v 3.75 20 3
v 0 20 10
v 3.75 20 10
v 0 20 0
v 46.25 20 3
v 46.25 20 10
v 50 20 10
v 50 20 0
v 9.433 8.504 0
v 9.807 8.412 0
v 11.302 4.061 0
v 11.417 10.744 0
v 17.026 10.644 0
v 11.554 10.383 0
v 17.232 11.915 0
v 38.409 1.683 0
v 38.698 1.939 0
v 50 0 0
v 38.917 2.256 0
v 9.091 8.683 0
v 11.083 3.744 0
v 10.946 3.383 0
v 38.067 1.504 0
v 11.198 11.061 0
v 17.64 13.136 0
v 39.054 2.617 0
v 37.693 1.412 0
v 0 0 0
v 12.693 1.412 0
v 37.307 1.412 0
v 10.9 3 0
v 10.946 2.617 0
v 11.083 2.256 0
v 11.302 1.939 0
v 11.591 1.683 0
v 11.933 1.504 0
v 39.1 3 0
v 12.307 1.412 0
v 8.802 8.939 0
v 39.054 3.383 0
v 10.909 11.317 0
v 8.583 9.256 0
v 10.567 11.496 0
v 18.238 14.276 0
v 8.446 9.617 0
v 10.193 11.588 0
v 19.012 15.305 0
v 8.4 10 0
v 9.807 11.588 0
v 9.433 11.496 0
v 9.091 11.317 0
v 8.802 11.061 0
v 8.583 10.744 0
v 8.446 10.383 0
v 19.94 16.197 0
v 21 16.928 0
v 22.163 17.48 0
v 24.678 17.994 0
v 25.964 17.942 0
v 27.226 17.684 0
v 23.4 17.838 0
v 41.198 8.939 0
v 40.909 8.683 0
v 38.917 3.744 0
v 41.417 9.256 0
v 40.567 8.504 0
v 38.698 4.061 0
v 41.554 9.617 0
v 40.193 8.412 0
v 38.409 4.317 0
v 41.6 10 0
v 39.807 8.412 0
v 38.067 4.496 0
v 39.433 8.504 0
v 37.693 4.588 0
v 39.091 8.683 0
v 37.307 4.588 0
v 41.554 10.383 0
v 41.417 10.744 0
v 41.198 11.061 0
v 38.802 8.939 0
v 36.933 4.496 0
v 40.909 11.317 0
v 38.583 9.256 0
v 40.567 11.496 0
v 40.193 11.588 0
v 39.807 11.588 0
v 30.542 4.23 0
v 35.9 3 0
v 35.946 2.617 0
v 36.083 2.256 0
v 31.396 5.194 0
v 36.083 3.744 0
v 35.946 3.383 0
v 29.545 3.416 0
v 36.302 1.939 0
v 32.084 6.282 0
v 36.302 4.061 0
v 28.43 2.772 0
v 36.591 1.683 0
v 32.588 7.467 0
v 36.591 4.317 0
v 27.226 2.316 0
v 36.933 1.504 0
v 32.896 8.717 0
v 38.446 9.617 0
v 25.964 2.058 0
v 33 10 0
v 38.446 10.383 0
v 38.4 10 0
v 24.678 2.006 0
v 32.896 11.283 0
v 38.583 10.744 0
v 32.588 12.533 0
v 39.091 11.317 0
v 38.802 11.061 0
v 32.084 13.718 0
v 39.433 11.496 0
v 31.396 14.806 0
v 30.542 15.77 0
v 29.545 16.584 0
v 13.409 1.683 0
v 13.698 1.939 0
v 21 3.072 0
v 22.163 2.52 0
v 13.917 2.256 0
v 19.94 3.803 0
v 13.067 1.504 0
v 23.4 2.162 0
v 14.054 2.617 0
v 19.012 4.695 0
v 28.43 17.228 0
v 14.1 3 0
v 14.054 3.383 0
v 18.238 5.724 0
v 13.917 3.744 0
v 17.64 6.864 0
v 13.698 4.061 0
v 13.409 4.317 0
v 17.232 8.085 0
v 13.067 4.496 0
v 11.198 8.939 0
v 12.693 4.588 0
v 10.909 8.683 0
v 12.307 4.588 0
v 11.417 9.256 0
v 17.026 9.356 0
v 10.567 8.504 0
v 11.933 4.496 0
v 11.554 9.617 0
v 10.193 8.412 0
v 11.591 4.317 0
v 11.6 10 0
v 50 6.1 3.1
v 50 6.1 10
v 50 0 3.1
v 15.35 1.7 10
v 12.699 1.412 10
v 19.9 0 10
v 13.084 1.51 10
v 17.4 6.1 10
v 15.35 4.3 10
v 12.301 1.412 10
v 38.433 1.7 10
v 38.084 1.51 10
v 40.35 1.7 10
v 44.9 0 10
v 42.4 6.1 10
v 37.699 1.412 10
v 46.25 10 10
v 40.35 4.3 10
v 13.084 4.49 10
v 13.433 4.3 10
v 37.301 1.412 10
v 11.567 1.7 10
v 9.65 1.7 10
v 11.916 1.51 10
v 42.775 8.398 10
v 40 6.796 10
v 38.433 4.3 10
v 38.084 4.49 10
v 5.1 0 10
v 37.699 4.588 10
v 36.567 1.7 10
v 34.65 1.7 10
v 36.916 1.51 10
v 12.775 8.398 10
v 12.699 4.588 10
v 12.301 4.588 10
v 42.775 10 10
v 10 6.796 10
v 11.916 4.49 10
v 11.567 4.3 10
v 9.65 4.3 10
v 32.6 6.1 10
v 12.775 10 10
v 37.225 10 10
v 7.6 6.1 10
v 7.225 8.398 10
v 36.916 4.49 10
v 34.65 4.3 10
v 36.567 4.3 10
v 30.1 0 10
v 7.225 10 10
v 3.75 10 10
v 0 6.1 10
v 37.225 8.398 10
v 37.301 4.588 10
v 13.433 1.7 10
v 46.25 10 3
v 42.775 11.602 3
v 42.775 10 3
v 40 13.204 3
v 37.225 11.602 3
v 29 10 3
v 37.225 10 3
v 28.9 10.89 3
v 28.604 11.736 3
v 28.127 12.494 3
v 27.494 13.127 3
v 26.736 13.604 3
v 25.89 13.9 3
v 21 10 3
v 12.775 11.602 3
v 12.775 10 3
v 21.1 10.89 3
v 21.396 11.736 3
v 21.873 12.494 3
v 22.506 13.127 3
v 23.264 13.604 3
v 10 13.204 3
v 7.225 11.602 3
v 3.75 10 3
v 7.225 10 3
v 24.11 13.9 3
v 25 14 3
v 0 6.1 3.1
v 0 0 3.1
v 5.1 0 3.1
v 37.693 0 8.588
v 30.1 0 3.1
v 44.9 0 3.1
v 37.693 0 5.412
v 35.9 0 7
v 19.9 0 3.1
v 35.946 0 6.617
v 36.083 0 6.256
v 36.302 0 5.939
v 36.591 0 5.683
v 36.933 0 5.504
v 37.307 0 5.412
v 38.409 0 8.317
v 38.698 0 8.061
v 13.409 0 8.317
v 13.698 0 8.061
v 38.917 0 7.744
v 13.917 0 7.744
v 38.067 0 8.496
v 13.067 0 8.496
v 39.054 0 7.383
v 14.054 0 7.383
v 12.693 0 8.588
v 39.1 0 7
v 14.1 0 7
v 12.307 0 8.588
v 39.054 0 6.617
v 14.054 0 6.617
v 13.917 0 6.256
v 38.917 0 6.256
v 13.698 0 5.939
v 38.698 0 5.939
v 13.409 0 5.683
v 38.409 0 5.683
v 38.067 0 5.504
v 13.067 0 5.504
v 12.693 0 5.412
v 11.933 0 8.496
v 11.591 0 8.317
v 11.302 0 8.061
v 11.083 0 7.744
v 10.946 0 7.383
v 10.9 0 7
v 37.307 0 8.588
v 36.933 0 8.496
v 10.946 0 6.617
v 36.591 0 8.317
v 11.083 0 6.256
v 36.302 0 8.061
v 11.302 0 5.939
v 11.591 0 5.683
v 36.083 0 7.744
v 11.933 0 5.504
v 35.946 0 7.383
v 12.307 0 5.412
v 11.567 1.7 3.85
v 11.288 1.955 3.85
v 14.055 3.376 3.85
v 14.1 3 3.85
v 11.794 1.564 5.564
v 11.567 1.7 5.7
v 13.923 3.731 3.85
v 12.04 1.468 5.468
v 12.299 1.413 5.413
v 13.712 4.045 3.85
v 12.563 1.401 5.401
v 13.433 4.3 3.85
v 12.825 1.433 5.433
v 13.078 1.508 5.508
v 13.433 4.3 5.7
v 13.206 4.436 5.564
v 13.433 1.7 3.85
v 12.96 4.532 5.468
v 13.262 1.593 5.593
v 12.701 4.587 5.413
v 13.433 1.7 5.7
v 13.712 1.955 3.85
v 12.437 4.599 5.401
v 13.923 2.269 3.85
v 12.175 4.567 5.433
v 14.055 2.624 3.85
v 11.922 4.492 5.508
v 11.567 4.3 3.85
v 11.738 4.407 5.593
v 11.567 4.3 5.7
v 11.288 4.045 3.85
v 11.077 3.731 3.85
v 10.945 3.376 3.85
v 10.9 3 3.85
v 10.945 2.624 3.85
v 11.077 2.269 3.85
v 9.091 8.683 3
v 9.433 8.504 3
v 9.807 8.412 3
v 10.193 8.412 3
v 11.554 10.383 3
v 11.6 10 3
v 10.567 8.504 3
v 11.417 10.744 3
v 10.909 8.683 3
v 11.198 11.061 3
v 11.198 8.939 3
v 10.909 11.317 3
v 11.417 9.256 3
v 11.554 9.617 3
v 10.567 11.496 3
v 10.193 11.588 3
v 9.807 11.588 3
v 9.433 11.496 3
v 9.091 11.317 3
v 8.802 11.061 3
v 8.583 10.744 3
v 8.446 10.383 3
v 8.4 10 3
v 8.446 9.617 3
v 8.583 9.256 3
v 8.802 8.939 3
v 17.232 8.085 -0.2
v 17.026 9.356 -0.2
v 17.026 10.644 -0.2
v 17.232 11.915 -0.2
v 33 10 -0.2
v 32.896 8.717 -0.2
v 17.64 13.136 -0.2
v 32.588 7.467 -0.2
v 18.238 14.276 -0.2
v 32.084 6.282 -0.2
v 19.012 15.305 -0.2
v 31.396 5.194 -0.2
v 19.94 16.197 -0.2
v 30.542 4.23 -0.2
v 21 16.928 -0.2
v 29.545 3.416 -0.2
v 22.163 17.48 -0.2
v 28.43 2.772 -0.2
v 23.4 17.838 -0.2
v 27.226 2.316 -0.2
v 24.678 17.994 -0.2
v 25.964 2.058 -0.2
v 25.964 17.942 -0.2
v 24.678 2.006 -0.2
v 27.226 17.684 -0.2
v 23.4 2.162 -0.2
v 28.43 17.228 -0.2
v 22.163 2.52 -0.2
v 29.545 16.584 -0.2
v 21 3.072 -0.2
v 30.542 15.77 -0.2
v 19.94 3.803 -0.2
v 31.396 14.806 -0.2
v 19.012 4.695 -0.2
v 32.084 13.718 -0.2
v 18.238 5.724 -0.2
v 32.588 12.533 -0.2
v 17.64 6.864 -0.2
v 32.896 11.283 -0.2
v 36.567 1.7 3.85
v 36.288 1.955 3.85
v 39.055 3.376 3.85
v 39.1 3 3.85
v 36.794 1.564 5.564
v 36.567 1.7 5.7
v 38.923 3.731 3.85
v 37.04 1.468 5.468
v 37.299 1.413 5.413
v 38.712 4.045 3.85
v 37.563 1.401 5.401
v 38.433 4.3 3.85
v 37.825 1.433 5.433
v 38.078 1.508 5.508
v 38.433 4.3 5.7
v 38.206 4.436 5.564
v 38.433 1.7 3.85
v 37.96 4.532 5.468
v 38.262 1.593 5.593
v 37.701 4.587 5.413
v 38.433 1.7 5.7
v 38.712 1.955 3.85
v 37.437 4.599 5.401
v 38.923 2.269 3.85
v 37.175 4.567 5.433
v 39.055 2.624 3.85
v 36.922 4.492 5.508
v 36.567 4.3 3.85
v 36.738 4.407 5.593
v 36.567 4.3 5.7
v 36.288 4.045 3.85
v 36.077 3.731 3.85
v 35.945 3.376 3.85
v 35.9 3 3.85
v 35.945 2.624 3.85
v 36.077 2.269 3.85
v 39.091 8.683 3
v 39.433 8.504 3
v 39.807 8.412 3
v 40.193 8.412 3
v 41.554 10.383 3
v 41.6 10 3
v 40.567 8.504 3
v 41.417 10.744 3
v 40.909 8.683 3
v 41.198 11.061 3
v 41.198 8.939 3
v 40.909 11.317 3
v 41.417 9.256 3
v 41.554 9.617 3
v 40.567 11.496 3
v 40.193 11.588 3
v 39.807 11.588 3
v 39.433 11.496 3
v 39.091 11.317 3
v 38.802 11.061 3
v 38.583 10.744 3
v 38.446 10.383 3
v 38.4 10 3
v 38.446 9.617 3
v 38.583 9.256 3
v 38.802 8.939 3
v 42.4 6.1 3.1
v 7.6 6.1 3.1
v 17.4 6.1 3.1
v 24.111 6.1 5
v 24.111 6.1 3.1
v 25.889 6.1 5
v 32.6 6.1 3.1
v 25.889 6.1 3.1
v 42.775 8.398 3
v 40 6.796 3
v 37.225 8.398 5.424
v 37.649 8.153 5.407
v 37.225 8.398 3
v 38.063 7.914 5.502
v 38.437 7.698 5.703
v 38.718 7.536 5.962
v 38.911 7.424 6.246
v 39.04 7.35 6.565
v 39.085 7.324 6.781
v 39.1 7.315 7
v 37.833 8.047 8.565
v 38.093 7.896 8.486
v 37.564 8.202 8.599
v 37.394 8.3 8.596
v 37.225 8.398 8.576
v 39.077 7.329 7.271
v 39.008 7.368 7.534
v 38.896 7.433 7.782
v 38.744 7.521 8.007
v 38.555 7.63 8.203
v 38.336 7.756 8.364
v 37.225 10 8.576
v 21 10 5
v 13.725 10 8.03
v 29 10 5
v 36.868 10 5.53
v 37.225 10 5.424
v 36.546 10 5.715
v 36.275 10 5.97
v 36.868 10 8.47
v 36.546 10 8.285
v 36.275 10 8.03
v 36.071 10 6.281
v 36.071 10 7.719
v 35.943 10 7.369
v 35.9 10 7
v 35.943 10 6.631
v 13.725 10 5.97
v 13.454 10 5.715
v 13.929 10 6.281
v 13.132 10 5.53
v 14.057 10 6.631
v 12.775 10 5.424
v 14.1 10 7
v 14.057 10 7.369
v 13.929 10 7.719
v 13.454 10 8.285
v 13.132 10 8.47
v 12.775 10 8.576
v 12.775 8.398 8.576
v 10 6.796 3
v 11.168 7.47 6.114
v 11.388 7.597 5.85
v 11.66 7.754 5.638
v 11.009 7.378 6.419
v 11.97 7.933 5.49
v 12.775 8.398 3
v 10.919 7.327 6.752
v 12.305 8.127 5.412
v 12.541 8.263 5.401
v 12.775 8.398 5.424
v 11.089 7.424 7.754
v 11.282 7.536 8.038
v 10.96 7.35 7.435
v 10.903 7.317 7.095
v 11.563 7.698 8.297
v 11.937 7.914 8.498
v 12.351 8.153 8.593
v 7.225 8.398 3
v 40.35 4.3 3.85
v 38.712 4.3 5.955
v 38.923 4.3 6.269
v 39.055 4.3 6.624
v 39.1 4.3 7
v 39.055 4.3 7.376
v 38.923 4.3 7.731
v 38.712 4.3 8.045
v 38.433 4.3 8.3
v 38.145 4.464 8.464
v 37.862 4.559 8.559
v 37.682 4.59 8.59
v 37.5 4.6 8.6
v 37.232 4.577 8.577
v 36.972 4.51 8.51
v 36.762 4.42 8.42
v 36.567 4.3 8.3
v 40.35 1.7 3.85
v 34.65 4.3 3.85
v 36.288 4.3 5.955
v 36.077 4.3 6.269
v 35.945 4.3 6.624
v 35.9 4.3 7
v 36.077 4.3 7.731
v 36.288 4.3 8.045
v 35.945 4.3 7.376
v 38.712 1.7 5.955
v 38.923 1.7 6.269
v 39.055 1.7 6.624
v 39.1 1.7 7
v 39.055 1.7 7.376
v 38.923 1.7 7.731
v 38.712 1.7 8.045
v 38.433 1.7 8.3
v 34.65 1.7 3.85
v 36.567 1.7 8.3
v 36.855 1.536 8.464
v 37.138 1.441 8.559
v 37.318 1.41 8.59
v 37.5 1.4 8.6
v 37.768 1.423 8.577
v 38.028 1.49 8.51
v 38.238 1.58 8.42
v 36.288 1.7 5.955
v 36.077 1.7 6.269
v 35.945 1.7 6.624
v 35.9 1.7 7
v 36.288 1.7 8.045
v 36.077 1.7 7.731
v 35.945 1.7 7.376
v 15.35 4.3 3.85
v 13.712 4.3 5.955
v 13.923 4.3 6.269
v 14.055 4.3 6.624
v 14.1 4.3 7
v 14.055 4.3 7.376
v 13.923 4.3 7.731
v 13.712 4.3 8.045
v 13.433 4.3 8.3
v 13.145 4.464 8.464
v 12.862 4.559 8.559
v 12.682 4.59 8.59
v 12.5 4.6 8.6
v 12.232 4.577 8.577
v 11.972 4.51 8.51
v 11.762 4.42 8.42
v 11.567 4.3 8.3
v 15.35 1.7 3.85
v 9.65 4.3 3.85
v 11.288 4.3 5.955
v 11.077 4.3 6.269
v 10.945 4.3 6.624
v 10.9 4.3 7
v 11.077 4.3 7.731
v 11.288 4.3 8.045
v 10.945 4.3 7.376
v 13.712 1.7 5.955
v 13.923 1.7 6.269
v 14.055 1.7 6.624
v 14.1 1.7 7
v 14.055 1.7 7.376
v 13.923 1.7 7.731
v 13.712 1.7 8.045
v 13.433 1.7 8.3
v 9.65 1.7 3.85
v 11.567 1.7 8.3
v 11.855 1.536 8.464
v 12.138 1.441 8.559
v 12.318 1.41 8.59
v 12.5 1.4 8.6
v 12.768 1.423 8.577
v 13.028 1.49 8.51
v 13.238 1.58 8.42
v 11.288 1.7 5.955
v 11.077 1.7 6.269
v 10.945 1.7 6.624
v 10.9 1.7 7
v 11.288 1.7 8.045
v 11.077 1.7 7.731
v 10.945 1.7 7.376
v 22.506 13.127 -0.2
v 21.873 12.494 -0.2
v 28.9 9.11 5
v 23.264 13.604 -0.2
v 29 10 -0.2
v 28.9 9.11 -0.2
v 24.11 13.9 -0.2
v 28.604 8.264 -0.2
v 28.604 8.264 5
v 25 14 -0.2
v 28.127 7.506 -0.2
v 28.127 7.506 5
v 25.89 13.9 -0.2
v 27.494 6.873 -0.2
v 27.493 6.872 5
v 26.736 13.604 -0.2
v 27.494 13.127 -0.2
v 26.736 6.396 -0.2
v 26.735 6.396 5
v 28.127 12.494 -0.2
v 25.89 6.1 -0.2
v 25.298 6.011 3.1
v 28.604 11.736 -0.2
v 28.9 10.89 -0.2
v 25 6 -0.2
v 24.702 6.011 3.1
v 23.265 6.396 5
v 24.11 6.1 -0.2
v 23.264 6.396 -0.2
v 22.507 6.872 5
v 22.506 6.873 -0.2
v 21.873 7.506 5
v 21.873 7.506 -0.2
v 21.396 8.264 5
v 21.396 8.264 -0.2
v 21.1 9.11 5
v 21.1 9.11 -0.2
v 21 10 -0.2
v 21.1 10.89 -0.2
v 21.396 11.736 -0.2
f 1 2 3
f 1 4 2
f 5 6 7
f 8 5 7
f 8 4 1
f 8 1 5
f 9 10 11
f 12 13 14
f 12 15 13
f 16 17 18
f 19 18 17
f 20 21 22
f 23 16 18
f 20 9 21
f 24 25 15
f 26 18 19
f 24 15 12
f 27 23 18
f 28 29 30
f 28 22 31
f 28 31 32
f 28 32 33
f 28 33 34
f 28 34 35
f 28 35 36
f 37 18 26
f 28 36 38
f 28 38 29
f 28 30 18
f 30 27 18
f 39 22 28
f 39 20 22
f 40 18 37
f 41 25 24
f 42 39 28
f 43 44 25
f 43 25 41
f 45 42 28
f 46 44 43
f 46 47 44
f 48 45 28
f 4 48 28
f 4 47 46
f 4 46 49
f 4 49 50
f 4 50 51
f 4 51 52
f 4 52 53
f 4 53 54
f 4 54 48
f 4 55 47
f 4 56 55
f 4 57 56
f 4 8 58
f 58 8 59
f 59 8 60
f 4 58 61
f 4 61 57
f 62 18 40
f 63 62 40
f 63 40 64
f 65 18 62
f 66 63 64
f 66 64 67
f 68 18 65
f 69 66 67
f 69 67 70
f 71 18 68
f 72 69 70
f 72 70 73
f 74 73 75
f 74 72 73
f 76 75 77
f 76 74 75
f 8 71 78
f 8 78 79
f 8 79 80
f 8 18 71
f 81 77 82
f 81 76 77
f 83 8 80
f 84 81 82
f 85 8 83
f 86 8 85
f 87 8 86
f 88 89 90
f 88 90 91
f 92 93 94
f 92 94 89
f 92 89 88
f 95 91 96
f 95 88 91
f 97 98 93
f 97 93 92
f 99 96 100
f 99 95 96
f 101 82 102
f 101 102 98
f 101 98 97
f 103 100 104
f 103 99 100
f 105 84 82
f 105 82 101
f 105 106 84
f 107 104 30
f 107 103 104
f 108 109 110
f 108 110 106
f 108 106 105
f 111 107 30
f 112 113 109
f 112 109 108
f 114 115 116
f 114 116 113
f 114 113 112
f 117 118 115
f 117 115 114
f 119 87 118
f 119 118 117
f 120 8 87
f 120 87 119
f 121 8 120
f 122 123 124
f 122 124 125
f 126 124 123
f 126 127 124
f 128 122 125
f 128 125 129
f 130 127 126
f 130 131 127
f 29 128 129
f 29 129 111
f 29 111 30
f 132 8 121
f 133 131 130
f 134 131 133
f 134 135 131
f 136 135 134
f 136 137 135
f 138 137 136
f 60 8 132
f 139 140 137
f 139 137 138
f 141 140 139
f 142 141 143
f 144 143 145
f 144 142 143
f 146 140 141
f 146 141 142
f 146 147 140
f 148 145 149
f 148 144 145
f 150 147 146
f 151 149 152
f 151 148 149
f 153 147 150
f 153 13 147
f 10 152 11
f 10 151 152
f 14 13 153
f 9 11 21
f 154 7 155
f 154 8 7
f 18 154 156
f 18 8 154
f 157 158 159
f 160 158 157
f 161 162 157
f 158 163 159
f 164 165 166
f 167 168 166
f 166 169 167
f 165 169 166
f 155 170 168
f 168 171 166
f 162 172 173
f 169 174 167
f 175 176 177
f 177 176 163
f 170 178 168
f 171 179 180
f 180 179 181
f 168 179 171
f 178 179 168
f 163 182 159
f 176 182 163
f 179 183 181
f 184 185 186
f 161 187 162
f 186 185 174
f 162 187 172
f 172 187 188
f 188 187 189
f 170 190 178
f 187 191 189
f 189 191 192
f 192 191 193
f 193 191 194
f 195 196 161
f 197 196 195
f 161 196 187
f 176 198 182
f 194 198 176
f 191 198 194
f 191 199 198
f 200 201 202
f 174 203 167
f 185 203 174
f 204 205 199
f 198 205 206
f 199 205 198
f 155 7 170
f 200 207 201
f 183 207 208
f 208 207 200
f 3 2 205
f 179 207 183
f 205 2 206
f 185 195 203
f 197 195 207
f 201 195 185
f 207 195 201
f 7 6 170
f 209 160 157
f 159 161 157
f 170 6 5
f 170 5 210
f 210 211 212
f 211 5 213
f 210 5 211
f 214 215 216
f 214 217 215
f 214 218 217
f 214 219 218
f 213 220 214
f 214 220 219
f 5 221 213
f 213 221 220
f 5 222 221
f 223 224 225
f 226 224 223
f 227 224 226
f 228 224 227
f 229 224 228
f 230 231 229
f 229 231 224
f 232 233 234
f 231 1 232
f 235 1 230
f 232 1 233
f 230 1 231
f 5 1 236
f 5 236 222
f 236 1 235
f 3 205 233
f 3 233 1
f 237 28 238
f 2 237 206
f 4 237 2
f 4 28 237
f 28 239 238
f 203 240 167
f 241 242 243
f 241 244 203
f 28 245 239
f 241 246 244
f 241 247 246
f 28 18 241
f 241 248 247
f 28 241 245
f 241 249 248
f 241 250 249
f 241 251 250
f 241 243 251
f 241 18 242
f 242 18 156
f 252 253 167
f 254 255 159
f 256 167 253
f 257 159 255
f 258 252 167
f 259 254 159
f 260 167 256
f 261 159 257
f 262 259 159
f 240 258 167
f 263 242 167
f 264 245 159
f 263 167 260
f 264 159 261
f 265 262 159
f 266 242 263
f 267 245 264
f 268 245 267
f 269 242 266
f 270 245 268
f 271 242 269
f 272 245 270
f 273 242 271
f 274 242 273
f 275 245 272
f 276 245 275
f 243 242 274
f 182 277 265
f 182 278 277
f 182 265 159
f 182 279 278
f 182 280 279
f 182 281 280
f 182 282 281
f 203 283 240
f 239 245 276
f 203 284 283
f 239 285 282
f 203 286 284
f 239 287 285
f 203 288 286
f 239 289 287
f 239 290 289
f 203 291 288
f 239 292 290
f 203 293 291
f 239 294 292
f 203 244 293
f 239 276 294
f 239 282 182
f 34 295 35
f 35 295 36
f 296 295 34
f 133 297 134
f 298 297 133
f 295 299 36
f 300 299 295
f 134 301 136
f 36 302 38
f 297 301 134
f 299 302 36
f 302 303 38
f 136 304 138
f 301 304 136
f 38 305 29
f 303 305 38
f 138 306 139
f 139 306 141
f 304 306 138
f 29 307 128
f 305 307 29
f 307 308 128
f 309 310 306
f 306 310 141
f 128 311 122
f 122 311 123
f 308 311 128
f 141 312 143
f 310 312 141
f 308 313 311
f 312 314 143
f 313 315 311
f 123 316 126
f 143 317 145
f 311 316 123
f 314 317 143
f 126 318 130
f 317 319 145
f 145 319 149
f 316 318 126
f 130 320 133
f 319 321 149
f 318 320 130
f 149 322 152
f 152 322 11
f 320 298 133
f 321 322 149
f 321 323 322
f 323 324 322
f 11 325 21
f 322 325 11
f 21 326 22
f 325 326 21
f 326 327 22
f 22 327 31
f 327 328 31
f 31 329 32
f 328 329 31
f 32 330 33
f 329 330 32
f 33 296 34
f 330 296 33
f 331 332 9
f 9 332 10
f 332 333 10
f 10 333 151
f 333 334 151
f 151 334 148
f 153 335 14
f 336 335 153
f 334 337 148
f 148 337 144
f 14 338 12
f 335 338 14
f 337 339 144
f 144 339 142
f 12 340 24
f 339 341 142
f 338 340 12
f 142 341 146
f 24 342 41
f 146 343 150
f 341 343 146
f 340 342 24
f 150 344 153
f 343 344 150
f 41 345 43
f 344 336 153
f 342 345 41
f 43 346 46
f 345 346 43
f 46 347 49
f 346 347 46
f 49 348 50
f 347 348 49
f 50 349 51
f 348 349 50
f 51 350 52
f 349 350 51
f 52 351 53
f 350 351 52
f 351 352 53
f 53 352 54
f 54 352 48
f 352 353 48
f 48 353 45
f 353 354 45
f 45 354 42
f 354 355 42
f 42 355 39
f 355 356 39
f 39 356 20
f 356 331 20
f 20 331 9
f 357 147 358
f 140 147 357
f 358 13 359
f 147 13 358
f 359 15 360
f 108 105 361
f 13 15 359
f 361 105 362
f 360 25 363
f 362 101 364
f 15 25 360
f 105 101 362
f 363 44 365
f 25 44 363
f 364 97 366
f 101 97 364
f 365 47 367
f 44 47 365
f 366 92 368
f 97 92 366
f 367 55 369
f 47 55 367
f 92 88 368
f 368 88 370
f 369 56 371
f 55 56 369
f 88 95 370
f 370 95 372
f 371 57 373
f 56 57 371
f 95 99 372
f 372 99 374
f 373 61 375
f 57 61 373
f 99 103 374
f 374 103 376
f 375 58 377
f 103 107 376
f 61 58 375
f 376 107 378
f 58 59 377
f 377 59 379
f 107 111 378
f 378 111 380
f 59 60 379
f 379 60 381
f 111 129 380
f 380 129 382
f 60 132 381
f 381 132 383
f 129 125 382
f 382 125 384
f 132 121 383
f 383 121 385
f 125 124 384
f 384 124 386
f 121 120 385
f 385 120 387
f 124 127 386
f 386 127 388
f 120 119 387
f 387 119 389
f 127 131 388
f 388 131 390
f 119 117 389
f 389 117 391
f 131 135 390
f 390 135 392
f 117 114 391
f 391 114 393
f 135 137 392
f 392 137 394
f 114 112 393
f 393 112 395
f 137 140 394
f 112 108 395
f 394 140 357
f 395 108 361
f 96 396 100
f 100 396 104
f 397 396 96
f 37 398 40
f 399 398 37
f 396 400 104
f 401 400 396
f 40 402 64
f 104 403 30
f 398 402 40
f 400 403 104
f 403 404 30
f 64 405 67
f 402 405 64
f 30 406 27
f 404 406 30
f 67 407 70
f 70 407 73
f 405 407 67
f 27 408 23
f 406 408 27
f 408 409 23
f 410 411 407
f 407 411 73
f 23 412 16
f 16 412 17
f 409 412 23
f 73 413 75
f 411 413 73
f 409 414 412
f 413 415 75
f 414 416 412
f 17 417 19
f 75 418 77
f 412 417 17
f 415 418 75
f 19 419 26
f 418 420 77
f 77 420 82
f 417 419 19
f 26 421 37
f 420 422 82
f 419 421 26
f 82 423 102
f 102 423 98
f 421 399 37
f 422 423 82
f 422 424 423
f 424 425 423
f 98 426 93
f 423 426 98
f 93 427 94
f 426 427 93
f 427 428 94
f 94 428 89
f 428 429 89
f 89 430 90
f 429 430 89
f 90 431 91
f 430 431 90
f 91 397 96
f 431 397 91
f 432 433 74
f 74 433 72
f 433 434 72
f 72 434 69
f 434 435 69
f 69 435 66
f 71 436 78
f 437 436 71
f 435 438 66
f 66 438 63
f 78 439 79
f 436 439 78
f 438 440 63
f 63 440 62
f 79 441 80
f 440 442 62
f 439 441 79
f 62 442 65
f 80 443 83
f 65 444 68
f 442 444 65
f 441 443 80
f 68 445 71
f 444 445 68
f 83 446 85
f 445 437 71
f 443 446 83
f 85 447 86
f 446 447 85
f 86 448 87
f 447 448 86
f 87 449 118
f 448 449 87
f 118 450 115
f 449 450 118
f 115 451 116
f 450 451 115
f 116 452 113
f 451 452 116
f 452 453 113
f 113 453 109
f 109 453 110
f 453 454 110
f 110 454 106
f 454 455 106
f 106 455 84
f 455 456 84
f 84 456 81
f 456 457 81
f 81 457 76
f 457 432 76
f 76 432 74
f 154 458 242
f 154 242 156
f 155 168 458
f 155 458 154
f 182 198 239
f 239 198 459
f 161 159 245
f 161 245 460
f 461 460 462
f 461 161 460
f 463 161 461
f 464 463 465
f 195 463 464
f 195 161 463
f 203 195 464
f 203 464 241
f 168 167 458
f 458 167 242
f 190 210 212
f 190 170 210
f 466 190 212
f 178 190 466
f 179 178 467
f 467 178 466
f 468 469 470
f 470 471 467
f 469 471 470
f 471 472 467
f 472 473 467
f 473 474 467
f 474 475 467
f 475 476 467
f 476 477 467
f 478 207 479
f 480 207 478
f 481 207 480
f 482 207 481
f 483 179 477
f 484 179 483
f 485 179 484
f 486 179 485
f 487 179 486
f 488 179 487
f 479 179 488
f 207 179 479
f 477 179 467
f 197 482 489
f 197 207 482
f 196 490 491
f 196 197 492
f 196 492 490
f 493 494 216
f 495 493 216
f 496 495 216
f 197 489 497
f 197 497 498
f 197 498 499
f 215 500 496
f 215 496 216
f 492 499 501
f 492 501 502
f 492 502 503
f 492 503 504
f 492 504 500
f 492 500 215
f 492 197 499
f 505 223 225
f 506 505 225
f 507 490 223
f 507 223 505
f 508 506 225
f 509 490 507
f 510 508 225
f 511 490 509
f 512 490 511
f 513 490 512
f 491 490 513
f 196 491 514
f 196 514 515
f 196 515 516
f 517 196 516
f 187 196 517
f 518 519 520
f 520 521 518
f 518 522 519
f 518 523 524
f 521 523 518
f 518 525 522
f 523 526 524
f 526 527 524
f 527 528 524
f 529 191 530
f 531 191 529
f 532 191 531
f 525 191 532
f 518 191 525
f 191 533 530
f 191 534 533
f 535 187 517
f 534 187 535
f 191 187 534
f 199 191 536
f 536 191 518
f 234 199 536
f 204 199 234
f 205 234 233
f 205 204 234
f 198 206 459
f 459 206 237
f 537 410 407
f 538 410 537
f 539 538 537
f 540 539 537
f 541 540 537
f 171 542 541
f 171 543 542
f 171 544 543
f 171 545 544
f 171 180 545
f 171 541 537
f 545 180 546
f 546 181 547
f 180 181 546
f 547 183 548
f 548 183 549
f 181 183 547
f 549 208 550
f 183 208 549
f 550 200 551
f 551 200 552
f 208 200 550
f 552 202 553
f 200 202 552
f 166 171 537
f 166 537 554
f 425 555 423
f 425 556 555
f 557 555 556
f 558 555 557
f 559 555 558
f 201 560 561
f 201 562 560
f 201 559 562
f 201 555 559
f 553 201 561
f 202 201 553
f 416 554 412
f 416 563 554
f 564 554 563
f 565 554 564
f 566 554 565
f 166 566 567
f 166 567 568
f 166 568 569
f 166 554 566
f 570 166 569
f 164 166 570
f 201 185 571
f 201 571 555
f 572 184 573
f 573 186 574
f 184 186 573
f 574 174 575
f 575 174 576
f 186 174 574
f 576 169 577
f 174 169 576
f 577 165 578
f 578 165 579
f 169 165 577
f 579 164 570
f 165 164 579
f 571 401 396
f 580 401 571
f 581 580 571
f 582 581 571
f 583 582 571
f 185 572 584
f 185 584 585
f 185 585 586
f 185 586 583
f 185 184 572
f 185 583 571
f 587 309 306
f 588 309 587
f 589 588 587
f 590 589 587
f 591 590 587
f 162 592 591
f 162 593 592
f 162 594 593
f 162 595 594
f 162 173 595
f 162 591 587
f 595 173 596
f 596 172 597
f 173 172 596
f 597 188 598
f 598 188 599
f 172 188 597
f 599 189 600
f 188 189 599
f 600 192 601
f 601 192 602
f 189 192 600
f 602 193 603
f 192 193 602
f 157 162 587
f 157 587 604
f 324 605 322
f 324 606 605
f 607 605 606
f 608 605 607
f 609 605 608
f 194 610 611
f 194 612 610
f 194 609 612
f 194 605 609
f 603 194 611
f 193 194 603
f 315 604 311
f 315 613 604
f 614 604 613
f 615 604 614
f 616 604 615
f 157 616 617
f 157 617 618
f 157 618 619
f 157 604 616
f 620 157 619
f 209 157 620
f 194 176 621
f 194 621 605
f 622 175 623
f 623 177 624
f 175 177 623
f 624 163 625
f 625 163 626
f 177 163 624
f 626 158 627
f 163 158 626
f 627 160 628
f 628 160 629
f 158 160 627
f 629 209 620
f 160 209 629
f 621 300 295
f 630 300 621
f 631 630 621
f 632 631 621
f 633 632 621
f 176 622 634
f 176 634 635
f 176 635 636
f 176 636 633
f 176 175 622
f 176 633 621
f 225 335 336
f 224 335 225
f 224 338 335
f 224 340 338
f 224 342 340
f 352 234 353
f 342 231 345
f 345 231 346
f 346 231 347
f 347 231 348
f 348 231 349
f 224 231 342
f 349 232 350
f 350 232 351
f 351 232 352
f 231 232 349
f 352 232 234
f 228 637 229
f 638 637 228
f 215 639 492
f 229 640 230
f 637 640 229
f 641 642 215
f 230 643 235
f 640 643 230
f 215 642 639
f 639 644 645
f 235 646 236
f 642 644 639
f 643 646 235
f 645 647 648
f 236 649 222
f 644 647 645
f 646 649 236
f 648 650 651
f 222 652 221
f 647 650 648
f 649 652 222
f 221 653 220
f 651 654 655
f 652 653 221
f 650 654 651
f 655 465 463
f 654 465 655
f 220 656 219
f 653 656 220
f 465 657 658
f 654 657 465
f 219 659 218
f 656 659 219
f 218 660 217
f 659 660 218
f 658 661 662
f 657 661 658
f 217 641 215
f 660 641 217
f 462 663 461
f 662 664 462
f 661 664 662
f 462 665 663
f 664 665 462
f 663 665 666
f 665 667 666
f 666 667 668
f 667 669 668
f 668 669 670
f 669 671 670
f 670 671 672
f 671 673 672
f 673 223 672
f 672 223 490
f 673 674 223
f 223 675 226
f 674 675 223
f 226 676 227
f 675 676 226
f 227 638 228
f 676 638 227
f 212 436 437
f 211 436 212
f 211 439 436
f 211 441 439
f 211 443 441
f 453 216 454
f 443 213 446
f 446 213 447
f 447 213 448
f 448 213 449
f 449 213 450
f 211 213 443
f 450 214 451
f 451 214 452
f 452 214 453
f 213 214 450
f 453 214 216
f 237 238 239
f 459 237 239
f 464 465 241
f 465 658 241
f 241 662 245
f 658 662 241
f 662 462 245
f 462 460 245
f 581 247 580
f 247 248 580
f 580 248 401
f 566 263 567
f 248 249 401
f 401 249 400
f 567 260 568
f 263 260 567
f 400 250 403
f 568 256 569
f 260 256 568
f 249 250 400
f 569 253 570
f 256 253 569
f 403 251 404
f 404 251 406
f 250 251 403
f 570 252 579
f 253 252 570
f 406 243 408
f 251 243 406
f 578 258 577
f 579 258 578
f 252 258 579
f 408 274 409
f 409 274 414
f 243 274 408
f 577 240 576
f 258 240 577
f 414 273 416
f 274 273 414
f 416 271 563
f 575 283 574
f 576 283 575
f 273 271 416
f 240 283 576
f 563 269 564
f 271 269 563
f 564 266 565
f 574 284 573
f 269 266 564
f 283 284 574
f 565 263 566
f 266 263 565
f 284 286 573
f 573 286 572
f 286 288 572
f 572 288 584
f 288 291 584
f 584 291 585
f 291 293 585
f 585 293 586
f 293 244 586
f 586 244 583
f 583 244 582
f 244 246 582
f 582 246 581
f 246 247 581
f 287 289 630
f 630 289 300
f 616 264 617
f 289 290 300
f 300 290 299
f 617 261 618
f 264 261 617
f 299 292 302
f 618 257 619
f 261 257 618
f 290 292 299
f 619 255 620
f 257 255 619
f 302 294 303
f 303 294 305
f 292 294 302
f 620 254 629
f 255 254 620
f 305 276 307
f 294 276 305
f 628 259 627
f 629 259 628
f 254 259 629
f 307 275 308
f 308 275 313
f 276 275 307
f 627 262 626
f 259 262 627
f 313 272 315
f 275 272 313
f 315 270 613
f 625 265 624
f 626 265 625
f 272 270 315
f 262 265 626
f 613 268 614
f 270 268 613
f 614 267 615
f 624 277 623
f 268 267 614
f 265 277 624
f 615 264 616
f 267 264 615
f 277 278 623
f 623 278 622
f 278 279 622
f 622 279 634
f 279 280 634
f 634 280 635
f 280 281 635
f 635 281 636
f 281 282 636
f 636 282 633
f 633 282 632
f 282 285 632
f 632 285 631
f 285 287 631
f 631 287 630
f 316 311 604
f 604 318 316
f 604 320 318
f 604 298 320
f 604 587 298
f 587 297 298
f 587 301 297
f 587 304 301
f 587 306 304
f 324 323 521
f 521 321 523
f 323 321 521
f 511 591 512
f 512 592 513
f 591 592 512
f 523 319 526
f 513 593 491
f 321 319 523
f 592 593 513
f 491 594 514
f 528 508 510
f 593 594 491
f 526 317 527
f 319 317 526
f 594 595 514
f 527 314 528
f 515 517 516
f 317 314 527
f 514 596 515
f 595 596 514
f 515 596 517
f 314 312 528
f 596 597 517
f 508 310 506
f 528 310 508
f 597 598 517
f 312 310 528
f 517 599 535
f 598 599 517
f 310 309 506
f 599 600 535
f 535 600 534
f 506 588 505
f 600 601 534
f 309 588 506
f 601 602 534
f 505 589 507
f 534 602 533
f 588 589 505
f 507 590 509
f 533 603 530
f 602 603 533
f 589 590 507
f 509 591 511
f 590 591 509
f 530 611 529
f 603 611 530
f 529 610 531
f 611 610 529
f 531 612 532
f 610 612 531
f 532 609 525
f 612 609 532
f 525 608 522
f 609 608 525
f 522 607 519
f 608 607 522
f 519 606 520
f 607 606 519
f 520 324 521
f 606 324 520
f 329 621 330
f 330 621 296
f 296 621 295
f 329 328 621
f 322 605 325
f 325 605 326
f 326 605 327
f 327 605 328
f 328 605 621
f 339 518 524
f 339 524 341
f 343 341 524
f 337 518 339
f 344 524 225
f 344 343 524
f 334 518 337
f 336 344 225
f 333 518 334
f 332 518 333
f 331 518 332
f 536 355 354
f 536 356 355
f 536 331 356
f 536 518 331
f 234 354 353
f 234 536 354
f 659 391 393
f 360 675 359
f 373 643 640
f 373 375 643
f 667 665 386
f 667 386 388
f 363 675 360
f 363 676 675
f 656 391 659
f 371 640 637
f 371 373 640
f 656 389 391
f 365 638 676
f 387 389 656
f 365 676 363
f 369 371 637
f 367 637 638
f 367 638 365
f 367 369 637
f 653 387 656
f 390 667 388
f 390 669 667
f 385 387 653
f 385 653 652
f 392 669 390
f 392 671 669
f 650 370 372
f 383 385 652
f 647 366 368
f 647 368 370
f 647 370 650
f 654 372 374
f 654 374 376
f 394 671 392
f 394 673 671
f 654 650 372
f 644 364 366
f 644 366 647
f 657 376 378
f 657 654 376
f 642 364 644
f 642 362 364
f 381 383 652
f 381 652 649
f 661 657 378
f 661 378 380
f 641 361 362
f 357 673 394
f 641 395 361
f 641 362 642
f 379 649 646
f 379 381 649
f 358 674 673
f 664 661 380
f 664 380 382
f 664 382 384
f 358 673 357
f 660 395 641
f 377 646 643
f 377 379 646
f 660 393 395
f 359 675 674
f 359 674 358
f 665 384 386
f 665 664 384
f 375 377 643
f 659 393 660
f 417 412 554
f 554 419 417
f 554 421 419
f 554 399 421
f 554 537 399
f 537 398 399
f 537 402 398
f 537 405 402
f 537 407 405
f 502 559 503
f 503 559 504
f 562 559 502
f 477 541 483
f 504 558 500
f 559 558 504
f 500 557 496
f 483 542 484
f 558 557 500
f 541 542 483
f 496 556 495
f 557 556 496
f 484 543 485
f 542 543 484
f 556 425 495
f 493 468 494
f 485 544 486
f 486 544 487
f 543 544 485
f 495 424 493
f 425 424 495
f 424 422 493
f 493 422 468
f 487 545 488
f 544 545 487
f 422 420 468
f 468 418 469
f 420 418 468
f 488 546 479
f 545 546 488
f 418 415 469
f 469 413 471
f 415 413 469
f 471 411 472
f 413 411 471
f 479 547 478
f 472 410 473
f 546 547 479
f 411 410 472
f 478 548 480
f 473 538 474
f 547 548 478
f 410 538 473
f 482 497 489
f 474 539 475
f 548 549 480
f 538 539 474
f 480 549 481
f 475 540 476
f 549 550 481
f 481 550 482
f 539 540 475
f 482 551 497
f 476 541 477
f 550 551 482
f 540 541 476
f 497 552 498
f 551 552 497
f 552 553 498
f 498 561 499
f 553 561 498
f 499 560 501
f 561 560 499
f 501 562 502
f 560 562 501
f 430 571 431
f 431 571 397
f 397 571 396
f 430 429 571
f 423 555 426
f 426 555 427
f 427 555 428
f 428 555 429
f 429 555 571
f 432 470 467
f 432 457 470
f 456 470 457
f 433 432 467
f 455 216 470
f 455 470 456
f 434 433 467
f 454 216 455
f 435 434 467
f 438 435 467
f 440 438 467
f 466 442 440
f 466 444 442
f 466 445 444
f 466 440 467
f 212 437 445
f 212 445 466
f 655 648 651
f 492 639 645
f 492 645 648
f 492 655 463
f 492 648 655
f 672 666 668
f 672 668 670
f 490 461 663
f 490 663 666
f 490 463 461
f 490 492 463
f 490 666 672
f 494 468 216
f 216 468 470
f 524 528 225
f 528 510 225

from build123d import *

# Parameters (mm, degrees)
SKETCH_W             = 50
SKETCH_H             = 20
PAD_DEPTH            = 10
SKETCH001_W          = 42.5
SKETCH001_H          = 10
POCKET_DEPTH         = 7
SKETCH002_R          = 1.6
POCKET001_DEPTH      = 5
POCKET002_DEPTH      = 6.9
SKETCH004_R          = 1.6
POCKET003_DEPTH      = 10
SKETCH005_W          = 5.7
SKETCH005_H          = 2.6
POCKET004_DEPTH      = 6.15
SKETCH006_R          = 1.6
POCKET005_DEPTH      = 10
SKETCH007_R          = 8
PAD001_DEPTH         = 0.2
SKETCH008_R          = 4
POCKET006_DEPTH      = 2
POCKET006_DEPTH_BACK = -4
POCKET007_DEPTH      = 7


with BuildPart() as part:
    # Sketch → Pad (new body)
    with BuildSketch(Plane.XY):
        with Locations((25, 10)):
            Rectangle(SKETCH_W, SKETCH_H)
    extrude(amount=PAD_DEPTH)

    # Sketch001 (on Face6 of Pad) → Pocket (cut)
    with BuildSketch(Plane.XY.offset(10)):
        with Locations((25, 15)):
            Rectangle(SKETCH001_W, SKETCH001_H)
    extrude(amount=-POCKET_DEPTH, mode=Mode.SUBTRACT)

    # Sketch002 (on Face6 of Pocket) → Pocket001 (cut)
    with BuildSketch(Plane.XY.offset(3)):
        with Locations((10, 10)):
            Circle(SKETCH002_R)
        with Locations((40, 10)):
            Circle(SKETCH002_R)
    extrude(amount=-POCKET001_DEPTH, mode=Mode.SUBTRACT)

    # Sketch003 (on Face4 of Pocket001) → Pocket002 (cut)
    with BuildSketch(Plane.XY.offset(10)):
        Polygon((5.1, 0), (7.6, 6.1), (0, 6.1), (0, 0), align=None)
        Polygon((19.9, 0), (17.4, 6.1), (32.6, 6.1), (30.1, 0), align=None)
        Polygon((42.4, 6.1), (44.9, 0), (50, 0), (50, 6.1), align=None)
    extrude(amount=-POCKET002_DEPTH, mode=Mode.SUBTRACT)

    # Sketch004 (on Face4 of Pocket002) → Pocket003 (cut)
    with BuildSketch(Plane.XY.offset(10)):
        with Locations((12.5, 3)):
            Circle(SKETCH004_R)
        with Locations((37.5, 3)):
            Circle(SKETCH004_R)
    extrude(amount=-POCKET003_DEPTH, mode=Mode.SUBTRACT)

    # Sketch005 (on Face4 of Pocket003) → Pocket004 (cut)
    with BuildSketch(Plane.XY.offset(10)):
        with Locations((12.5, 3)):
            Rectangle(SKETCH005_W, SKETCH005_H)
        with Locations((37.5, 3)):
            Rectangle(SKETCH005_W, SKETCH005_H)
    extrude(amount=-POCKET004_DEPTH, mode=Mode.SUBTRACT)

    # Sketch006 (on Face9 of Pocket004) → Pocket005 (cut)
    with BuildSketch(Plane.XZ):
        with Locations((12.5, 7)):
            Circle(SKETCH006_R)
        with Locations((37.5, 7)):
            Circle(SKETCH006_R)
    extrude(amount=-POCKET005_DEPTH, mode=Mode.SUBTRACT)

    # Sketch007 (on Face2 of Pocket005) → Pad001 (join)
    with BuildSketch(Plane(origin=(0, 0, 0), x_dir=(1, 0, 0), z_dir=(0, 0, -1))):
        with Locations((25, -10)):
            Circle(SKETCH007_R)
    extrude(amount=PAD001_DEPTH)

    # Sketch008 (on Face47 of Pad001) → Pocket006 (cut, two sides)
    with BuildSketch(Plane(origin=(0, 0, 3), x_dir=(1, 0, 0), z_dir=(0, 0, -1))) as pocket006_sk:
        with Locations((25, -10)):
            Circle(SKETCH008_R)
    extrude(amount=-POCKET006_DEPTH, mode=Mode.SUBTRACT)
    extrude(pocket006_sk.sketch, amount=-POCKET006_DEPTH_BACK, mode=Mode.SUBTRACT)

    # Sketch009 (on Face4 of Pocket006) → Pocket007 (cut)
    with BuildSketch(Plane.XY.offset(10)):
        Polygon((12.775, 8.397853), (12.775, 11.602147), (10, 13.204294), (7.225, 11.602147), (7.225, 8.397853), (10, 6.795706), align=None)
        Polygon((42.775, 8.397853), (42.775, 11.602147), (40, 13.204294), (37.225, 11.602147), (37.225, 8.397853), (40, 6.795706), align=None)
    extrude(amount=-POCKET007_DEPTH, mode=Mode.SUBTRACT)


solid = part.part
